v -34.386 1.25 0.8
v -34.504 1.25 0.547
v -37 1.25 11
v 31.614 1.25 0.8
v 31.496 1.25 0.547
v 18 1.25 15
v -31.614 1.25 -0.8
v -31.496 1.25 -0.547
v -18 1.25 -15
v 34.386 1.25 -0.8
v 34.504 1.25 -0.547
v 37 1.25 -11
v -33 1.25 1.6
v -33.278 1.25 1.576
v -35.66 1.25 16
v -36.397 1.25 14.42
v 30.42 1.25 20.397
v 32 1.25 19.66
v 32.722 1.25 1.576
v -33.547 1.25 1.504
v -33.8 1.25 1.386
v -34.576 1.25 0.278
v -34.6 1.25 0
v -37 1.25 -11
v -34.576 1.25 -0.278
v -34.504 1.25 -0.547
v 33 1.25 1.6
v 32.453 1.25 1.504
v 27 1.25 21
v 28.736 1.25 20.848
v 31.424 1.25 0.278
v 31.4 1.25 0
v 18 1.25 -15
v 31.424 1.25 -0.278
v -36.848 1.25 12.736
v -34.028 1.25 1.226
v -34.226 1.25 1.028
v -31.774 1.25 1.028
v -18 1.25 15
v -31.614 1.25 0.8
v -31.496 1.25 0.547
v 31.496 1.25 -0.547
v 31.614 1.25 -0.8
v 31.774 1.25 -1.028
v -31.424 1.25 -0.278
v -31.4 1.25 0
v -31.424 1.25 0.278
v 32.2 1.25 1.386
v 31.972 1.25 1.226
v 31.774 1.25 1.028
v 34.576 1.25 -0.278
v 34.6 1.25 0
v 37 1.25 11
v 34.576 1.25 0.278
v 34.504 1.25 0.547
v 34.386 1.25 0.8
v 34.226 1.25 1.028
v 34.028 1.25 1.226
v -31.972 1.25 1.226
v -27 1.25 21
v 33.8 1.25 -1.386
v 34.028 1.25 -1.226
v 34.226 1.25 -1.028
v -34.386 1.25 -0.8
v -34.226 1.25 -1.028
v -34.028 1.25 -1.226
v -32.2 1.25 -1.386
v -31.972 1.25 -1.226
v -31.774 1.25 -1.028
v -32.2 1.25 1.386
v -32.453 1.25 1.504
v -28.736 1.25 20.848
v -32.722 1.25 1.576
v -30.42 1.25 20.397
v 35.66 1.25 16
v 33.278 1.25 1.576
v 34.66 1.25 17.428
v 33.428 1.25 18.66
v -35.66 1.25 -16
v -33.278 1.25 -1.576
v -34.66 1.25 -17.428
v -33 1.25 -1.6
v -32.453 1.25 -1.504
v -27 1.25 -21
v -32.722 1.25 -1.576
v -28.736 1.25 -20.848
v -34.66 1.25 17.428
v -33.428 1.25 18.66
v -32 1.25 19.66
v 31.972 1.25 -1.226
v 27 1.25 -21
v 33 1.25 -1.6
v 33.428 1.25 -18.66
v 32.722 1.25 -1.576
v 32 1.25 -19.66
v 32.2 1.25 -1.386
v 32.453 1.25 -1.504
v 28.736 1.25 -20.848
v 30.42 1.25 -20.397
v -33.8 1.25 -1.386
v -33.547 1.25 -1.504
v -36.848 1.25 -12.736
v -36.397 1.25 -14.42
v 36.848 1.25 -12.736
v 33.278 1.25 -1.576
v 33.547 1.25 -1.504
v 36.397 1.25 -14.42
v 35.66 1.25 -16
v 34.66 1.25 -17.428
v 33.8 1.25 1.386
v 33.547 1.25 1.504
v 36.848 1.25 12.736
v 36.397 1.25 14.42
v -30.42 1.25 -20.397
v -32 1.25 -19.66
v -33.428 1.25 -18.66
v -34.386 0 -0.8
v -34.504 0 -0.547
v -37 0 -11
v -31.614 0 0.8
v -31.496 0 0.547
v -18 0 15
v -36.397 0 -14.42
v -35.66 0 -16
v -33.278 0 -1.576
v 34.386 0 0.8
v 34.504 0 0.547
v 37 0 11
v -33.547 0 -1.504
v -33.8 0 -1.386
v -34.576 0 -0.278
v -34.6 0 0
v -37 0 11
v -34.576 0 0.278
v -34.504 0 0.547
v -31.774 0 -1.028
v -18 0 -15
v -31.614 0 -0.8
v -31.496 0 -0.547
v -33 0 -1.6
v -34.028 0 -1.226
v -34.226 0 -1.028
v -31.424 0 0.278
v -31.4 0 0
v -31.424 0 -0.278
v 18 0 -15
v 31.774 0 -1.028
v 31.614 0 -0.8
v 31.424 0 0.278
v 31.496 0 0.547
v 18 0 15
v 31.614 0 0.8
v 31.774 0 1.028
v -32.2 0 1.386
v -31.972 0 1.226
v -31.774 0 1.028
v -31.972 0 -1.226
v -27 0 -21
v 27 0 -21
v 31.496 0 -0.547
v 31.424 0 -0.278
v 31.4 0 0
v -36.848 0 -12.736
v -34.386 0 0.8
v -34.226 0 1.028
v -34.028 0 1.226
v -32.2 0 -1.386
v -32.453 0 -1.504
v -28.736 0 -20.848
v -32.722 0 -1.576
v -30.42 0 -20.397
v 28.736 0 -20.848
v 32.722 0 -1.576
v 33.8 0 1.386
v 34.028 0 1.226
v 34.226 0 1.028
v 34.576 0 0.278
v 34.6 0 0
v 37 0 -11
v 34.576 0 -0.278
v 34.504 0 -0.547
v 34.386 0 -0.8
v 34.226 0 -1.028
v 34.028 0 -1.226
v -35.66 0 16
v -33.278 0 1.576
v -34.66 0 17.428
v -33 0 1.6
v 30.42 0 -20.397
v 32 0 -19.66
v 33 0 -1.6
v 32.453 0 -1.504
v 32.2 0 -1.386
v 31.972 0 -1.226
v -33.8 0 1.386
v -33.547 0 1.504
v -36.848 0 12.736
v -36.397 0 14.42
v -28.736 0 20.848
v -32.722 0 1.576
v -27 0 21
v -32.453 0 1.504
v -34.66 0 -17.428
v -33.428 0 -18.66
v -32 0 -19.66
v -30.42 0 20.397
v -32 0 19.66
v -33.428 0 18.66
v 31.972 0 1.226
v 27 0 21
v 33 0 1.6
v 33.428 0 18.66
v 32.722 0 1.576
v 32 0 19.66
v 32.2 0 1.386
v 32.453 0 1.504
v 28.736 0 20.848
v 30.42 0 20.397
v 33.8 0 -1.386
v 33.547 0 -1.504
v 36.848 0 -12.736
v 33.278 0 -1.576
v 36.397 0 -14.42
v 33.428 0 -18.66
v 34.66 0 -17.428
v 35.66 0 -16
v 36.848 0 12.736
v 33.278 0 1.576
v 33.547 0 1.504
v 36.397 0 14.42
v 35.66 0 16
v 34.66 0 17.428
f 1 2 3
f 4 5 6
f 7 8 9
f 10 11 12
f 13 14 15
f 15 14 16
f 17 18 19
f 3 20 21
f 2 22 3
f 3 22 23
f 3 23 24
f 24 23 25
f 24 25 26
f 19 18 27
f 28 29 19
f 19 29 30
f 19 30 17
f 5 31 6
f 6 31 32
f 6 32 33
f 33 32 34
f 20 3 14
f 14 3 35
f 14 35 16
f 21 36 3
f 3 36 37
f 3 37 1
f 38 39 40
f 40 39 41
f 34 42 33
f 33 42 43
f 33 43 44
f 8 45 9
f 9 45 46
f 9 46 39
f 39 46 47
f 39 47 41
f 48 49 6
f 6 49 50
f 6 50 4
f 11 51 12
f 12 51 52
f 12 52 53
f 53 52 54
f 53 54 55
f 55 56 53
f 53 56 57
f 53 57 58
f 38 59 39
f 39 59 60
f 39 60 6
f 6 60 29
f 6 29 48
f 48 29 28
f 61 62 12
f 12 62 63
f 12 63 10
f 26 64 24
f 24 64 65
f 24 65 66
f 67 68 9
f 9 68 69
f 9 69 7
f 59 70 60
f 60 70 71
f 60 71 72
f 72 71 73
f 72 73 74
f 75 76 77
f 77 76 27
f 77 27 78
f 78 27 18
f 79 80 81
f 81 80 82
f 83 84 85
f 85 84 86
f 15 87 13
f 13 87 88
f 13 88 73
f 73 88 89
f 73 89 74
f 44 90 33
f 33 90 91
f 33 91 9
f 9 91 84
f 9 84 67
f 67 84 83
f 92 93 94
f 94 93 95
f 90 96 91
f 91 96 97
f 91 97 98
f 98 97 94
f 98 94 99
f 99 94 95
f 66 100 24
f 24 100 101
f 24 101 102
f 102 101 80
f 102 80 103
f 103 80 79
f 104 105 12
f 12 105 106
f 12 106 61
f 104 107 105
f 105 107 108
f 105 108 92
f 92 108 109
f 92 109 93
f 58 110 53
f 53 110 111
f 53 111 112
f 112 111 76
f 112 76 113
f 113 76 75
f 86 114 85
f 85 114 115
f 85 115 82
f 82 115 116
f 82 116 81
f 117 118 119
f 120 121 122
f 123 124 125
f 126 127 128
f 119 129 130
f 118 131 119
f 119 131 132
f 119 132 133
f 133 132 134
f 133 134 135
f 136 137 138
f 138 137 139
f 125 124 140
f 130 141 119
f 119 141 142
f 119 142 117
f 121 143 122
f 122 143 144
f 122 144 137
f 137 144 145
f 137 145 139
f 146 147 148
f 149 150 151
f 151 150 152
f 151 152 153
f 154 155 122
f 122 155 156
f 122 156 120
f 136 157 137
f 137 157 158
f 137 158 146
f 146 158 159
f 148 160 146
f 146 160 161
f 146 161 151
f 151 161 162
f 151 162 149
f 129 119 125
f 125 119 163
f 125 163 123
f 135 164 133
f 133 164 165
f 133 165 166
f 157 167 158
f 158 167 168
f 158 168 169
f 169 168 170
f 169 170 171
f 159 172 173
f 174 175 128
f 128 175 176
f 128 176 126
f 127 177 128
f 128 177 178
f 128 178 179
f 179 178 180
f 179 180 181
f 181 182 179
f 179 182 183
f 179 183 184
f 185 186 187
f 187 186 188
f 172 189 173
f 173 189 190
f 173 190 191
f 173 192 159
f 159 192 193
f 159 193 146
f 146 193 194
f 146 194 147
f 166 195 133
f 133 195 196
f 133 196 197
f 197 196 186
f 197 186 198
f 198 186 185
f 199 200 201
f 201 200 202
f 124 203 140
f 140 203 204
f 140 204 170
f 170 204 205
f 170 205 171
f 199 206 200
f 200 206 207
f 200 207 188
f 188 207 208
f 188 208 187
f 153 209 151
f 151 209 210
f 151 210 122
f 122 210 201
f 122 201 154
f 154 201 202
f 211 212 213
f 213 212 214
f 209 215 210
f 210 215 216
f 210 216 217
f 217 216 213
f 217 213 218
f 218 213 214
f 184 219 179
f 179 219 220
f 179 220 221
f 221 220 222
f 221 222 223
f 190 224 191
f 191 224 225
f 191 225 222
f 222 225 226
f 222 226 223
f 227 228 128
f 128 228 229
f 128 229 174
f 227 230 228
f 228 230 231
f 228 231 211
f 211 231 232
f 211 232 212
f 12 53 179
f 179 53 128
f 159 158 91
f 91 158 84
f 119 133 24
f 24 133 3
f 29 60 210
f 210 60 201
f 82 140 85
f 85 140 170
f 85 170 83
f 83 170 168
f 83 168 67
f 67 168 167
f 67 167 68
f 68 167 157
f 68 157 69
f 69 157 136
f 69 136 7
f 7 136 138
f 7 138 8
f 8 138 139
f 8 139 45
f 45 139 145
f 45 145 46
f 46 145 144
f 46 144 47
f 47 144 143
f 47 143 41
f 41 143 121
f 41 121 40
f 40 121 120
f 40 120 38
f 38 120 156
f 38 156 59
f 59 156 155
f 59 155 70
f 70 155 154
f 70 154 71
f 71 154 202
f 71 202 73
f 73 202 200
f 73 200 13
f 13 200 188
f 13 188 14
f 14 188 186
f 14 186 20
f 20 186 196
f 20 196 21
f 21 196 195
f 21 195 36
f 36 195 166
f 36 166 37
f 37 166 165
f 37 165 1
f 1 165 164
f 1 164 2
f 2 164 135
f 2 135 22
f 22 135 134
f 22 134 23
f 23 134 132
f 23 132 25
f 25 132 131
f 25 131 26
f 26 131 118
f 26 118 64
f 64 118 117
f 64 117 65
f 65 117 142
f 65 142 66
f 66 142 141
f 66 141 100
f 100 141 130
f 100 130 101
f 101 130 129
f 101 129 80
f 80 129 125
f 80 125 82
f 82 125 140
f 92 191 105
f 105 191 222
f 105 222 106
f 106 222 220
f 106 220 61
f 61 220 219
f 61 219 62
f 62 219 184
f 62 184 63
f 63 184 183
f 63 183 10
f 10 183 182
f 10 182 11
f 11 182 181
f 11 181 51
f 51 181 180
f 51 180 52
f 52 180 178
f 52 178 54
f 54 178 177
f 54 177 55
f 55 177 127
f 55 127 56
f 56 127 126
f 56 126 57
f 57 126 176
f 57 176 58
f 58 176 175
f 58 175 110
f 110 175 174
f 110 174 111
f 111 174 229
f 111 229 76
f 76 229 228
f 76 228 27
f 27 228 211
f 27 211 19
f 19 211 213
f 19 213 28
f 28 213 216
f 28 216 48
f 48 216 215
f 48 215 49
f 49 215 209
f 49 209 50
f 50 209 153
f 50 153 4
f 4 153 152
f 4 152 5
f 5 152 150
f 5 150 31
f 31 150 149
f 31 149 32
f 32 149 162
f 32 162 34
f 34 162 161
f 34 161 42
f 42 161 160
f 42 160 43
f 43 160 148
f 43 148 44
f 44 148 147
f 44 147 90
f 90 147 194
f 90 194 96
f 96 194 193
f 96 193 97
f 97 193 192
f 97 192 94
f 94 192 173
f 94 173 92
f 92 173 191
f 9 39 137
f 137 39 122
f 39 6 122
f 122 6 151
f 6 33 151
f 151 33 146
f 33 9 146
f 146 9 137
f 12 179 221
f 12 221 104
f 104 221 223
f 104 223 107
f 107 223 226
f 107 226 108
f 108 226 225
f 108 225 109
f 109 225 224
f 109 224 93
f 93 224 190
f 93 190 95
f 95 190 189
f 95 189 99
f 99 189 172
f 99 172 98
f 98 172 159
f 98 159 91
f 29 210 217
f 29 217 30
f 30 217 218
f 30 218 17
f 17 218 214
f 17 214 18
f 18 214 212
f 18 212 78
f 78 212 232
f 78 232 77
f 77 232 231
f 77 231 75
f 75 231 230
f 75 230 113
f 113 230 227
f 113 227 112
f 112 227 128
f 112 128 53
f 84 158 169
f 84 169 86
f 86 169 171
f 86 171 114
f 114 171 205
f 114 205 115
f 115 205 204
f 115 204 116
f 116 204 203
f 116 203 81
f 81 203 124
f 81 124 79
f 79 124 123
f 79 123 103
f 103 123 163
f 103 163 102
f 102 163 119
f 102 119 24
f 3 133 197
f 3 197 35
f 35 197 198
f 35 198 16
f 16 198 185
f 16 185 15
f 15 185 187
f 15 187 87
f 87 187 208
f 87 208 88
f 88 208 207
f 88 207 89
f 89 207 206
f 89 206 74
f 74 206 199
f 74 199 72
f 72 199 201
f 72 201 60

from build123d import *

# Parameters (mm, degrees)
SKETCH1_W           = 74
SKETCH1_H           = 42
SKETCH1_R           = 1.6
SKETCH1_W_2         = 36
SKETCH1_H_2         = 30
BOSS_EXTRUDE1_DEPTH = 1.25
FILLET1_R           = 10


with BuildPart() as part:
    # Sketch1 → Boss-Extrude1 (new body)
    with BuildSketch(Plane(origin=(0, 0, 0), x_dir=(1, 0, 0), z_dir=(0, 1, 0))):
        Rectangle(SKETCH1_W, SKETCH1_H)
        with Locations(Location((-33, 0, 0), (0, 0, 270))):
            Circle(SKETCH1_R, mode=Mode.SUBTRACT)
        with Locations(Location((33, 0, 0), (0, 0, 90))):
            Circle(SKETCH1_R, mode=Mode.SUBTRACT)
        Rectangle(SKETCH1_W_2, SKETCH1_H_2, mode=Mode.SUBTRACT)
    extrude(amount=BOSS_EXTRUDE1_DEPTH)

    # Fillet1
    fillet1_edges = [part.edges().sort_by_distance(p)[0] for p in [
        (37, 0.625, 21),
        (-37, 0.625, 21),
        (-37, 0.625, -21),
        (37, 0.625, -21),
    ]]
    fillet(fillet1_edges, radius=FILLET1_R)


solid = part.part
